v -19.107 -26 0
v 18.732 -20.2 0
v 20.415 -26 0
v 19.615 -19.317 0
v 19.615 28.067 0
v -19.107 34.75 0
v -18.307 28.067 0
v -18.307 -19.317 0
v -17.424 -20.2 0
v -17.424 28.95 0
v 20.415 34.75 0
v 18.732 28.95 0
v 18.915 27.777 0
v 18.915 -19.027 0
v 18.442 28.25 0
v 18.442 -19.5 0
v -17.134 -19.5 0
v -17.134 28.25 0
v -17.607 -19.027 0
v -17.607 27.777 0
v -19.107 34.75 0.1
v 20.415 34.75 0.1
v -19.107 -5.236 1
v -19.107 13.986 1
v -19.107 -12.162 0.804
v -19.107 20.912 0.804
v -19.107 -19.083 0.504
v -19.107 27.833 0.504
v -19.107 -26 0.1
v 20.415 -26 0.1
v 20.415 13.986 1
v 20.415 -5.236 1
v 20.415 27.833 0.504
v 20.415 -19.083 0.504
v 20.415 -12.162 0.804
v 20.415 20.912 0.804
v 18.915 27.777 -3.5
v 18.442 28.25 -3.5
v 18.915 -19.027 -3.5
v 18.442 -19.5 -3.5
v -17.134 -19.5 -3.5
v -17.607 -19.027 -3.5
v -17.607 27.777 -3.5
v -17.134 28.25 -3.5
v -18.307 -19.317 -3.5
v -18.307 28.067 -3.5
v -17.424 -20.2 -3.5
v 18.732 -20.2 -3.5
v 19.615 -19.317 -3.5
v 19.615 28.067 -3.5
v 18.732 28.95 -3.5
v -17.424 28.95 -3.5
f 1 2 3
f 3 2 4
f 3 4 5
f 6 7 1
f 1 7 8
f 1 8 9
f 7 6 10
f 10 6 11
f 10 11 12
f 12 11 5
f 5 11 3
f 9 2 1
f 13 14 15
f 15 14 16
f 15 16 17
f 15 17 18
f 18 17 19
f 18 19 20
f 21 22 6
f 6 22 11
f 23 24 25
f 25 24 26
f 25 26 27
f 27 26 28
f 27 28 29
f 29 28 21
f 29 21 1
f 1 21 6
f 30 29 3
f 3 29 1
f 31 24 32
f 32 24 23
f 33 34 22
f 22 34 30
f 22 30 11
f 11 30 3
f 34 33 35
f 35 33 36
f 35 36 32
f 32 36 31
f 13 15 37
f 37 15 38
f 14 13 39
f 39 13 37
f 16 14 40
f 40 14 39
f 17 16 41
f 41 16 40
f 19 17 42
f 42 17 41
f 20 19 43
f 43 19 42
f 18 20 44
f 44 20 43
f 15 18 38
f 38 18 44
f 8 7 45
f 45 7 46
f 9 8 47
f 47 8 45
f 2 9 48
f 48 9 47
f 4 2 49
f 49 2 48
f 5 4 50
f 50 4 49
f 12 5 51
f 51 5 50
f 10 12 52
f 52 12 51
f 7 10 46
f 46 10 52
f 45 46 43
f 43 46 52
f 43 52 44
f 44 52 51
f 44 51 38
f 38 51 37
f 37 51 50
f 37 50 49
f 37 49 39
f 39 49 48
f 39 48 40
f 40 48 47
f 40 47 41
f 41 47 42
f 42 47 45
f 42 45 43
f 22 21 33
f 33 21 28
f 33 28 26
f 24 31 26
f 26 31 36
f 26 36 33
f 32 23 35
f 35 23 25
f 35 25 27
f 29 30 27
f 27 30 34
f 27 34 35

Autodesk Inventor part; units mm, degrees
ref_plane "YZ Plane" through (0, 0, 0) normal (1, 0, 0) x (0, 1, 0)
ref_plane "XZ Plane" through (0, 0, 0) normal (0, 1, 0) x (-1, 0, 0)
ref_plane "XY Plane" through (0, 0, 0) normal (0, 0, 1) x (1, 0, 0)
sketch "スケッチ2" plane through (0, 0, 0) normal (0, 0, 1) x (1, 0, 0)
  line L0 (-18.1069, 29.75) -> (19.4146, 29.75) projected
  line L1 (-19.1069, 28.75) -> (-18.1069, 29.75) projected
  line L2 (-19.1069, -20) -> (-19.1069, 28.75) projected
  line L3 (-17.5069, 29.15) -> (18.8146, 29.15) projected
  line L4 (19.8146, 28.15) -> (18.8146, 29.15) projected
  line L5 (19.8146, 28.15) -> (19.8146, -19.4) projected
  line L6 (18.8146, -20.4) -> (19.8146, -19.4) projected
  line L7 (18.8146, -20.4) -> (-17.5069, -20.4) projected
  line L8 (-18.5069, -19.4) -> (-17.5069, -20.4) projected
  line L9 (-18.5069, -19.4) -> (-18.5069, 28.15) projected
  line L10 (-17.5069, 29.15) -> (-18.5069, 28.15) projected
  line L11 (18.7318, 28.95) -> (-17.424, 28.95)
  line L12 (-17.424, 28.95) -> (-18.3069, 28.0672)
  line L13 (-18.3069, 28.0672) -> (-18.3069, -19.3172)
  line L14 (-18.3069, -19.3172) -> (-17.424, -20.2)
  line L15 (-17.424, -20.2) -> (18.7318, -20.2)
  line L16 (18.7318, -20.2) -> (19.6146, -19.3172)
  line L17 (19.6146, -19.3172) -> (19.6146, 28.0672)
  line L18 (19.6146, 28.0672) -> (18.7318, 28.95)
  line L19 (-17.1341, 28.25) -> (18.4418, 28.25)
  line L20 (18.4418, 28.25) -> (18.9146, 27.7772)
  line L21 (18.9146, 27.7772) -> (18.9146, -19.0272)
  line L22 (18.9146, -19.0272) -> (18.4418, -19.5)
  line L23 (18.4418, -19.5) -> (-17.1341, -19.5)
  line L24 (-17.1341, -19.5) -> (-17.6069, -19.0272)
  line L25 (-17.6069, -19.0272) -> (-17.6069, 27.7772)
  line L26 (-17.6069, 27.7772) -> (-17.1341, 28.25)
  line L27 (20.4146, 34.75) -> (20.4146, -26) projected
  line L28 (-19.1069, 34.75) -> (20.4146, 34.75) projected
  line L29 (-19.1069, 34.75) -> (-19.1069, -26) projected
  line L30 (20.4146, -26) -> (-19.1069, -26) projected
  point P0 (0, 0)
  point P1 (20.4146, -20)
  point P2 (20.4146, 28.75)
  dimension "d0" = 0.2
  dimension "d1" = 0.7
extrude "押し出し1" add sketch "スケッチ2" against normal blind 3.5 contours L18 L17 L16 L15 L14 L13 L12 L11
sketch "スケッチ3" plane through (0, 0, 0) normal (0, 0, 1) x (1, 0, 0)
  line L0 (-17.5069, 29.15) -> (18.8146, 29.15) projected
  line L1 (19.8146, 28.15) -> (18.8146, 29.15) projected
  line L2 (19.8146, 28.15) -> (19.8146, -19.4) projected
  line L3 (18.8146, -20.4) -> (19.8146, -19.4) projected
  line L4 (18.8146, -20.4) -> (-17.5069, -20.4) projected
  line L5 (-18.5069, -19.4) -> (-17.5069, -20.4) projected
  line L6 (-18.5069, -19.4) -> (-18.5069, 28.15) projected
  line L7 (-17.5069, 29.15) -> (-18.5069, 28.15) projected
  line L8 (20.4146, 34.75) -> (20.4146, -26) projected
  line L9 (-19.1069, 34.75) -> (20.4146, 34.75) projected
  line L10 (-19.1069, 34.75) -> (-19.1069, -26) projected
  line L11 (20.4146, -26) -> (-19.1069, -26) projected
  point P0 (0, 0)
  point P1 (-19.1069, 28.75)
  point P2 (-19.1069, -20)
  point P3 (20.4146, -20)
  point P4 (20.4146, 28.75)
extrude "押し出し2" add sketch "スケッチ3" along normal blind 1 contours L0 L1 L2 L3 L4 L5 L6 L7 | L8 L11 L10 L9
sketch "スケッチ4" plane through (20.4146, -26, 0) normal (1, 0, 0) x (0, 0, -1)
  line L0 (-1, 60.75) -> (-1, 0) projected
  line L1 (-1, 30.375) -> (0, 30.375)
  line L2 (0, 30.375) -> (92.3953, 30.375)
  circle A0 centre (460.8203, 30.375) radius 461.8203
  line L3 (-1, 0) -> (-1, 60.75) projected
  circle A1 centre (460.8203, 30.375) radius 461.9203
  line L4 (0, 0) -> (-1, 0) projected
  line L5 (0, 60.75) -> (-1, 60.75) projected
  point P0 (0, 26)
  point P1 (-0.1002, 60.75)
  point P2 (-1, 39.9861)
  point P3 (-0.1002, 0)
  point P4 (-1, 20.7639)
  dimension "d6" = 0.1
extrude "押し出し3" cut sketch "スケッチ4" against normal through all contours L5 A1 L0 | A1 L4 L0
properties part number "CaseButtom"
